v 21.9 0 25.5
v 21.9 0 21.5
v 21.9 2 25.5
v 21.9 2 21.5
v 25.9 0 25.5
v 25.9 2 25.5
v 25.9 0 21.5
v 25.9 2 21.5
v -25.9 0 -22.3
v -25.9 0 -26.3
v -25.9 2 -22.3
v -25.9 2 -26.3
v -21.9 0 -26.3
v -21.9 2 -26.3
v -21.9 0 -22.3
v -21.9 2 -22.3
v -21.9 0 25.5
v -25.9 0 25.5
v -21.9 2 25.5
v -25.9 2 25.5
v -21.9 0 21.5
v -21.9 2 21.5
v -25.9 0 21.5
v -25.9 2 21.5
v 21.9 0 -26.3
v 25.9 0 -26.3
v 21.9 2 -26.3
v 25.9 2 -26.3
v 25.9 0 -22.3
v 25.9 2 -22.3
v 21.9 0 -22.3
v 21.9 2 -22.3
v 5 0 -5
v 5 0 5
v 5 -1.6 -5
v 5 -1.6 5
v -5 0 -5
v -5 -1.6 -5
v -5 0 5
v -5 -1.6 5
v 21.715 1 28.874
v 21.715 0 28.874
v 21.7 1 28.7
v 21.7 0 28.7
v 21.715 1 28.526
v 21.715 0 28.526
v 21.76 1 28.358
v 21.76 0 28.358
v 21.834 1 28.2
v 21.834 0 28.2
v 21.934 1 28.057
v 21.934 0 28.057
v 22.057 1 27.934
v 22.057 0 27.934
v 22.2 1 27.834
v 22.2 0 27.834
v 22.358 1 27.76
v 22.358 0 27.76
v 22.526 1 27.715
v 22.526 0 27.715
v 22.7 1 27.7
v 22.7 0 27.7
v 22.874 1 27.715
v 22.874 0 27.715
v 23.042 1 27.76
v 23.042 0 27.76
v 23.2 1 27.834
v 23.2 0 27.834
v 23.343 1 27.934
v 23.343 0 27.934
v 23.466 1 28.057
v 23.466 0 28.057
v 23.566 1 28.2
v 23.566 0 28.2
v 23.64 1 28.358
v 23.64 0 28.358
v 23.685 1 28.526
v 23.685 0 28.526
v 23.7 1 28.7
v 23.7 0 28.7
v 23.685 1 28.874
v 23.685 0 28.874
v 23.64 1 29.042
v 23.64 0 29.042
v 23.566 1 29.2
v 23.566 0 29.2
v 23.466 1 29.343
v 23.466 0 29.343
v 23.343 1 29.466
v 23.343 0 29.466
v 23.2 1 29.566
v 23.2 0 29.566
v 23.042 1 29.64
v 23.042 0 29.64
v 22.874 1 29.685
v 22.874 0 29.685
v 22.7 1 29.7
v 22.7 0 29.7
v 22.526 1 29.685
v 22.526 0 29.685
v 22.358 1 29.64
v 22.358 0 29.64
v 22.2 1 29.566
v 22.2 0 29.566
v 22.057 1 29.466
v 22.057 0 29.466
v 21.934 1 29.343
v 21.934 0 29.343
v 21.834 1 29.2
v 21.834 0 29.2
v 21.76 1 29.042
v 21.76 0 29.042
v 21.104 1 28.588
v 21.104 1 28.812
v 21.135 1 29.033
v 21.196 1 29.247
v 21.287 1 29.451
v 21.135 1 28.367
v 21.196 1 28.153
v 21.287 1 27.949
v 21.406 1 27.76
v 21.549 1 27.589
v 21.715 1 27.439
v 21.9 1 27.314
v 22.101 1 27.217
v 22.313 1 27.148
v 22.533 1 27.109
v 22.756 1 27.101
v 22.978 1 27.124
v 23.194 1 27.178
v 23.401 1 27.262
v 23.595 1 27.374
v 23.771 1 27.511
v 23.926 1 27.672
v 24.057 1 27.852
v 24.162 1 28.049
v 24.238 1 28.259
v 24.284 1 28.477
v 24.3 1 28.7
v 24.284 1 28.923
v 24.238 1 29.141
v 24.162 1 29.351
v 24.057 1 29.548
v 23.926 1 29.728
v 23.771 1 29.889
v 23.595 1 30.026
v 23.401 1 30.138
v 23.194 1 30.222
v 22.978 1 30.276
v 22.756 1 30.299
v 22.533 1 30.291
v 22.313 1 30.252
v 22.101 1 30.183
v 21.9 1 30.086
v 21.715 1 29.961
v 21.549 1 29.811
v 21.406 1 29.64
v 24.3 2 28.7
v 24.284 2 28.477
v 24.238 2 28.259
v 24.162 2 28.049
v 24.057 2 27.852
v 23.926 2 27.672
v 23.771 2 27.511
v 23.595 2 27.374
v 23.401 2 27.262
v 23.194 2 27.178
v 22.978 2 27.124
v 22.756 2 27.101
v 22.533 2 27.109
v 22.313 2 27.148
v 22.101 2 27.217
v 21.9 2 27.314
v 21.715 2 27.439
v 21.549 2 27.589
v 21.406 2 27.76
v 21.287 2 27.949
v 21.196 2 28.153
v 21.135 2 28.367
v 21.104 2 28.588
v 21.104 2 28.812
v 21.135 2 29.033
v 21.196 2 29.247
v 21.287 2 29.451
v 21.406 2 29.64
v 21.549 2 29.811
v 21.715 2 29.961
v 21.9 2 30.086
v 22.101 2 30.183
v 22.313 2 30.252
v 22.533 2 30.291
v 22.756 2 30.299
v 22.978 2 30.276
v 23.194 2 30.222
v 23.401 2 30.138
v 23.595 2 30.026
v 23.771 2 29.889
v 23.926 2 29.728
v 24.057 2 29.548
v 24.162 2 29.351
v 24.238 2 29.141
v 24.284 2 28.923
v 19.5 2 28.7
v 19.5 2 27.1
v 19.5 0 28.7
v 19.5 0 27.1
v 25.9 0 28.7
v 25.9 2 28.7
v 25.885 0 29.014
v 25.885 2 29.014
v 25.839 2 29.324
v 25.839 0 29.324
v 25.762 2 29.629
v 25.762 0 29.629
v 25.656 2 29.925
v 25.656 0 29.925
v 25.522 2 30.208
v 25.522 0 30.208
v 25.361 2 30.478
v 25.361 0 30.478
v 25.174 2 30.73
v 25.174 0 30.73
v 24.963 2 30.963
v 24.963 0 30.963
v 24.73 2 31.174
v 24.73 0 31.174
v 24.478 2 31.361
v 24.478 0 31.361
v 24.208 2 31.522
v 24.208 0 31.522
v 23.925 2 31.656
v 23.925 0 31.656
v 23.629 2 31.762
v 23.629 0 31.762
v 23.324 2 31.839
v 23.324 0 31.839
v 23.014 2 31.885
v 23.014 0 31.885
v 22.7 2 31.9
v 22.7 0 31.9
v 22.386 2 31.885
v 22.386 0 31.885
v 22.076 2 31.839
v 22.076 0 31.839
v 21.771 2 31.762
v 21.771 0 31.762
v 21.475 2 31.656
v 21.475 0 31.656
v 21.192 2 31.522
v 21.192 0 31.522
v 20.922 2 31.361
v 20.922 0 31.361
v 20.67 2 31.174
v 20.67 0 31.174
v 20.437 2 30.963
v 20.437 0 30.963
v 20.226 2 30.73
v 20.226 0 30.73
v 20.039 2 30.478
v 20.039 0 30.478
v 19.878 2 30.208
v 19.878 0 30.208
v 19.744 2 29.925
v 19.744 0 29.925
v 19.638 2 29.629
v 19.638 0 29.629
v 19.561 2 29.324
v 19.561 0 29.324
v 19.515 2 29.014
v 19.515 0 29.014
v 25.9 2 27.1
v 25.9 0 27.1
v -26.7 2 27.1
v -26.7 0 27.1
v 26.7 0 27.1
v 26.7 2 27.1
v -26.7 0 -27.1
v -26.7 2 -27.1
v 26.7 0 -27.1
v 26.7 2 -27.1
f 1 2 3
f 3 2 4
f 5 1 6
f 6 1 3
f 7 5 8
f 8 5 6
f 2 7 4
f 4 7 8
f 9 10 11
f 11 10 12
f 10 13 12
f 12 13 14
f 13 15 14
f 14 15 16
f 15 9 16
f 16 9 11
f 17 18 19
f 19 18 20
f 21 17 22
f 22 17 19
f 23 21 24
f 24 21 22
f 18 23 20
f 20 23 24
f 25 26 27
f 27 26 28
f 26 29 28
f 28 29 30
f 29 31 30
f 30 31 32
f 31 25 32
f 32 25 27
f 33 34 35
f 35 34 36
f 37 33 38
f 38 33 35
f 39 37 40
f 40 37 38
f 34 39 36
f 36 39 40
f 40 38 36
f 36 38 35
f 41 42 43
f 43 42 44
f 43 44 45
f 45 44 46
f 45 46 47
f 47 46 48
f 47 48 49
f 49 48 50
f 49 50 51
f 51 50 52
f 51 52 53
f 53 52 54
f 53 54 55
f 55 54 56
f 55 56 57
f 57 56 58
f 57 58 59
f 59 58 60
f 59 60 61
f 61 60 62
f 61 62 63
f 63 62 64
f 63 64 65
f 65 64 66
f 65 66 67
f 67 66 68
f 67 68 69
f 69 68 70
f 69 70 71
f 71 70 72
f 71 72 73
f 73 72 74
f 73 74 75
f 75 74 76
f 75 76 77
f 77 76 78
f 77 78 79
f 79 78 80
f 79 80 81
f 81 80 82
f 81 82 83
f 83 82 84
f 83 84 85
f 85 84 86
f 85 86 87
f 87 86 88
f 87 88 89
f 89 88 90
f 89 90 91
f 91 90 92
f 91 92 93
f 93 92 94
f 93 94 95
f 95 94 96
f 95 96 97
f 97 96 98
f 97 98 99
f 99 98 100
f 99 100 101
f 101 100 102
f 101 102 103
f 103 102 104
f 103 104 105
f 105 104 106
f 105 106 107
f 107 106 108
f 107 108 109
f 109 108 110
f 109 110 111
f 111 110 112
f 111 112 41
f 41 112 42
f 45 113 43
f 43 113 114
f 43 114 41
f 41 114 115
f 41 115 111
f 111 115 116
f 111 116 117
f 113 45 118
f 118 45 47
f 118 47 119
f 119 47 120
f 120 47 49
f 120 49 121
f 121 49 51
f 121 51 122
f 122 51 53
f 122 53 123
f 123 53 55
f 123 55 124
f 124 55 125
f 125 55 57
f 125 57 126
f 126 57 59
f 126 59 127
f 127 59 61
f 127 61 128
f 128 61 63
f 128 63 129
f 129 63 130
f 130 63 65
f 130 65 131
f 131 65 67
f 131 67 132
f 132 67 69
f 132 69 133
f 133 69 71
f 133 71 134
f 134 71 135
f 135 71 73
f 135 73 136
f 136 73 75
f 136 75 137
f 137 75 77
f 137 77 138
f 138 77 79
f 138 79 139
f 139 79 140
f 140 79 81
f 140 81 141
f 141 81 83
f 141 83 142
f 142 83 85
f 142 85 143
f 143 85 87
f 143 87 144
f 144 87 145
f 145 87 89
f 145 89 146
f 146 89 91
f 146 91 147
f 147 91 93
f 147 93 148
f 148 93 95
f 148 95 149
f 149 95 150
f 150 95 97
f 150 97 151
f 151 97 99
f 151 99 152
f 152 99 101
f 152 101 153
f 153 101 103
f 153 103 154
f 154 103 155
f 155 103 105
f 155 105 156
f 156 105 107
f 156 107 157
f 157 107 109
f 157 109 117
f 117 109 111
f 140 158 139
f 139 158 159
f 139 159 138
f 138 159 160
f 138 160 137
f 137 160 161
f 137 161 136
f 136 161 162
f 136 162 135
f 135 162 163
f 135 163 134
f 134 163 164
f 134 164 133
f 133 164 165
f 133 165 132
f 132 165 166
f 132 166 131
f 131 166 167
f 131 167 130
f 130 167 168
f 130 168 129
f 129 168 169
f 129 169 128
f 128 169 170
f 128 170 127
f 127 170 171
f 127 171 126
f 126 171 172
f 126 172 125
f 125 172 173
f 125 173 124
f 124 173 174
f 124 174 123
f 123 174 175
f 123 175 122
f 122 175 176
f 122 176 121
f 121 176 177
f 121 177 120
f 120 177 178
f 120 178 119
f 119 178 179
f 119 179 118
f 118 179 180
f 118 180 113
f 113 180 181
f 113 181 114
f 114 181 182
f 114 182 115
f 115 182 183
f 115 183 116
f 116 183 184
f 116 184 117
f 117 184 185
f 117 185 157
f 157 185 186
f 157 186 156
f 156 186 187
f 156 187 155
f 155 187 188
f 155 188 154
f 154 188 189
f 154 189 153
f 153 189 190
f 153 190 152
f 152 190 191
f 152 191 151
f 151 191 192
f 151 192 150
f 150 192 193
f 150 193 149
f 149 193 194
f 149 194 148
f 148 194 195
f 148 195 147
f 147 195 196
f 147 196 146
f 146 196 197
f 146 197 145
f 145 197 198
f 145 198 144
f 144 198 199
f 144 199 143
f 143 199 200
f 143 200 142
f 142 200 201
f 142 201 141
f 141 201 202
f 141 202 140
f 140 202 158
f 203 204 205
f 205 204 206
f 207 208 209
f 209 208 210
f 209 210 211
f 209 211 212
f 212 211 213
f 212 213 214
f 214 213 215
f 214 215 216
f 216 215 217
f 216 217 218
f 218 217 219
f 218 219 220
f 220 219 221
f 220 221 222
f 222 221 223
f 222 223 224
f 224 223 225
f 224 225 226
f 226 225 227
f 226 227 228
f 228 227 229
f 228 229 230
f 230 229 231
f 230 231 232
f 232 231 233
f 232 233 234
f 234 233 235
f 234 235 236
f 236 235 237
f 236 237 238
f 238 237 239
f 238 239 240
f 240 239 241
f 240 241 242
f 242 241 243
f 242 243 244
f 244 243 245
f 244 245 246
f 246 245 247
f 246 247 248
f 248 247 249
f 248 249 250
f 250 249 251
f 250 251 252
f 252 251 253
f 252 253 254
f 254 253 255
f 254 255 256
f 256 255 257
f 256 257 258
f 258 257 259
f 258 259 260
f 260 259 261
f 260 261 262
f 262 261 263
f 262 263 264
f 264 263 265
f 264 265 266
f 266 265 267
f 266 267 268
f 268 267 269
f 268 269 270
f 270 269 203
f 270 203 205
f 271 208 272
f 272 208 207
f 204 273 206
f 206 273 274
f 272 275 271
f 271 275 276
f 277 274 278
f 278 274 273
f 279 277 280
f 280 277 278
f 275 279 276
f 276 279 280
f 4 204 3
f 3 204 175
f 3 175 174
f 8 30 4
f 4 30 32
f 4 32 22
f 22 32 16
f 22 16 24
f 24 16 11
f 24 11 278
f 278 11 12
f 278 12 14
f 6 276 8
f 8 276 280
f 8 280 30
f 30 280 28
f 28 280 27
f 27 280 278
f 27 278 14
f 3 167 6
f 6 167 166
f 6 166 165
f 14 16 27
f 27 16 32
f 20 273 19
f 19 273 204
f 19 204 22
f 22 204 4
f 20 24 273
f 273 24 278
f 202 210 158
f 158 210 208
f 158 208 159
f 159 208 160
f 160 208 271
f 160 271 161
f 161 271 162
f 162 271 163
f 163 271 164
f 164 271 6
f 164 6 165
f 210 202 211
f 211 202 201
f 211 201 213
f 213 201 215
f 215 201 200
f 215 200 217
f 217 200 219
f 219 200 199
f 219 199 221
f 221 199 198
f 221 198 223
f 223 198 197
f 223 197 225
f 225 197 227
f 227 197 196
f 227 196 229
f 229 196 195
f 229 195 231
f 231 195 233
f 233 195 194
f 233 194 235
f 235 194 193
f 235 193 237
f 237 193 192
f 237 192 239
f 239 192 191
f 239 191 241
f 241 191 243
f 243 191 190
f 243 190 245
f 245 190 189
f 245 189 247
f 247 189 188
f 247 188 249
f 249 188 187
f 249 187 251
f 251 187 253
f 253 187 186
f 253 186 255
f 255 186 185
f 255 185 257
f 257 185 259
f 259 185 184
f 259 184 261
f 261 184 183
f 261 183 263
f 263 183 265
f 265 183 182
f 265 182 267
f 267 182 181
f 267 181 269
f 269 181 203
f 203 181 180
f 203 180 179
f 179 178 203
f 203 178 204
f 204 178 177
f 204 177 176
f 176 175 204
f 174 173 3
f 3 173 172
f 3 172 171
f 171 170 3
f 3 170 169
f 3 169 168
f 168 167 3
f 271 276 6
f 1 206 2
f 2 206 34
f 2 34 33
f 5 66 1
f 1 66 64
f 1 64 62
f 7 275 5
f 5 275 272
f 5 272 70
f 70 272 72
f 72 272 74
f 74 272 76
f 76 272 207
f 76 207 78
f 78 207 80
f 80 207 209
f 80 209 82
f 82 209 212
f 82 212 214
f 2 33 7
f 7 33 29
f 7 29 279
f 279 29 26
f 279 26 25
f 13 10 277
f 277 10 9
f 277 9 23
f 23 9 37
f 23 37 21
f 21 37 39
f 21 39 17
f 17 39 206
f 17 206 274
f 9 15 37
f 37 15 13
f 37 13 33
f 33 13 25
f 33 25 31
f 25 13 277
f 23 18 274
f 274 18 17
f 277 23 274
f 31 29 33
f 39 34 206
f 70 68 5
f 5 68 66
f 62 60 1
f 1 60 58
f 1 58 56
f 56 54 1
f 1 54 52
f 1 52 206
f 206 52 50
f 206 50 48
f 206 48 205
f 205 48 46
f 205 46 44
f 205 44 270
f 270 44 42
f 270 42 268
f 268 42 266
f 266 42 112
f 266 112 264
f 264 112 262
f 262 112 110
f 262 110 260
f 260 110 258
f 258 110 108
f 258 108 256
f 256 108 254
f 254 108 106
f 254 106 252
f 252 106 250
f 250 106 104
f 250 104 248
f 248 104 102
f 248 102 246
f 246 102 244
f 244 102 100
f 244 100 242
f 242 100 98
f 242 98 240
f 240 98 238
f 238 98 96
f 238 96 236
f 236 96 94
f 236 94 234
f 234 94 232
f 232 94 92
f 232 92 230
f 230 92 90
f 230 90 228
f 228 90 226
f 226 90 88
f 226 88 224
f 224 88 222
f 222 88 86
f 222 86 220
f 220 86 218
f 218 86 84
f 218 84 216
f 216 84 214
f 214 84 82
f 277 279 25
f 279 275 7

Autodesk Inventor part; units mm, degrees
ref_plane "YZ Plane" through (0, 0, 0) normal (1, 0, 0) x (0, 1, 0)
ref_plane "XZ Plane" through (0, 0, 0) normal (0, 1, 0) x (-1, 0, 0)
ref_plane "XY Plane" through (0, 0, 0) normal (0, 0, 1) x (1, 0, 0)
sketch "Szkic1" plane through (0, 0, 0) normal (0, 1, 0) x (-1, 0, 0)
  line L0 (26.7, -27.1) -> (-26.7, -27.1)
  line L1 (-26.7, -27.1) -> (-26.7, 27.1)
  line L2 (-26.7, 27.1) -> (26.7, 27.1)
  line L3 (26.7, 27.1) -> (26.7, -27.1)
  line L4 (26.7, -27.1) -> (-26.7, 27.1) construction
  line L5 (-26.7, -27.1) -> (26.7, 27.1) construction
  point P0 (0, 0)
  dimension "d0" = 53.4
  dimension "d1" = 54.2
extrude "Wyciągnięcie proste1" add sketch "Szkic1" along normal blind 2
sketch "Szkic11" plane through (0, 2, 0) normal (0, 1, 0) x (1, 0, 0)
  line L0 (-26.7, -27.1) -> (26.7, -27.1) projected
  line L1 (26.7, -27.1) -> (25.9, -27.1)
  line L2 (25.9, -27.1) -> (19.5, -27.1)
  line L3 (19.5, -27.1) -> (19.5, -28.7)
  line L4 (19.5, -28.7) -> (25.9, -28.7)
  line L5 (25.9, -28.7) -> (25.9, -27.1)
  arc A0 (19.5, -28.7) -> (25.9, -28.7) centre (22.7, -28.7) ccw
  point P0 (0, 0)
  dimension "d37" = 0.8
  dimension "d38" = 6.4
  dimension "d39" = 1.6
  dimension "d40" = 3.2
extrude "Wyciągnięcie proste10" add sketch "Szkic11" against normal blind 2
sketch "Szkic12" plane through (0, 2, 0) normal (0, 1, 0) x (1, 0, 0)
  arc A0 (19.5, -28.7) -> (25.9, -28.7) centre (22.7, -28.7) ccw projected
  circle A1 centre (22.7, -28.7) radius 1.6
  point P0 (0, 0)
  dimension "d43" = 3.2
extrude "Wyciągnięcie proste11" cut sketch "Szkic12" against normal through all
sketch "Szkic49" plane through (0, 0, 0) normal (0, -1, 0) x (1, 0, 0)
  circle A0 centre (22.7, 28.7) radius 1.6 projected
  circle A1 centre (22.7, 28.7) radius 1.6
  point P0 (0, 0)
extrude "Wyciągnięcie proste41" add sketch "Szkic49" against normal blind 1
sketch "Szkic50" plane through (0, 0, 0) normal (0, -1, 0) x (1, 0, 0)
  circle A0 centre (22.7, 28.7) radius 1.6 projected
  circle A1 centre (22.7, 28.7) radius 1
  point P0 (0, 0)
  dimension "d208" = 2
extrude "Wyciągnięcie proste42" cut sketch "Szkic50" against normal blind 10 contours A1
sketch "Szkic51" plane through (0, 0, 0) normal (0, -1, 0) x (1, 0, 0)
  line L0 (5, -5) -> (-5, -5)
  line L1 (-5, -5) -> (-5, 5)
  line L2 (-5, 5) -> (5, 5)
  line L3 (5, 5) -> (5, -5)
  line L4 (5, -5) -> (-5, 5) construction
  line L5 (-5, -5) -> (5, 5) construction
  point P0 (0, 0)
  dimension "d211" = 10
  dimension "d212" = 10
extrude "Wyciągnięcie proste43" add sketch "Szkic51" along normal blind 1.6
sketch "Szkic52" plane through (0, 2, 0) normal (0, 1, 0) x (1, 0, 0)
  line L0 (-25.9, 26.3) -> (-21.9, 26.3)
  line L1 (-21.9, 26.3) -> (-21.9, 22.3)
  line L2 (-21.9, 22.3) -> (-25.9, 22.3)
  line L3 (-25.9, 22.3) -> (-25.9, 26.3)
  line L4 (21.9, 26.3) -> (25.9, 26.3)
  line L5 (25.9, 26.3) -> (25.9, 22.3)
  line L6 (25.9, 22.3) -> (21.9, 22.3)
  line L7 (21.9, 22.3) -> (21.9, 26.3)
  line L8 (-25.9, -21.5) -> (-21.9, -21.5)
  line L9 (-21.9, -21.5) -> (-21.9, -25.5)
  line L10 (-21.9, -25.5) -> (-25.9, -25.5)
  line L11 (-25.9, -25.5) -> (-25.9, -21.5)
  line L12 (21.9, -21.5) -> (25.9, -21.5)
  line L13 (25.9, -21.5) -> (25.9, -25.5)
  line L14 (25.9, -25.5) -> (21.9, -25.5)
  line L15 (21.9, -25.5) -> (21.9, -21.5)
  line L16 (-25.9, 26.3) -> (-26.7, 26.3)
  line L17 (-25.9, -21.5) -> (-26.7, -21.5)
  line L18 (25.9, 26.3) -> (26.7, 26.3)
  line L19 (25.9, -21.5) -> (26.7, -21.5)
  line L20 (26.7, -27.1) -> (26.7, 27.1) projected
  line L21 (-26.7, 27.1) -> (-26.7, -27.1) projected
  line L22 (-25.9, 26.3) -> (-25.9, 27.1)
  line L23 (25.9, 26.3) -> (25.9, 27.1)
  line L24 (26.7, -27.1) -> (26.7, 27.1) projected
  line L25 (25.9, 26.3) -> (26.7, 26.3) construction
  line L26 (26.7, 27.1) -> (-26.7, 27.1) projected
  line L27 (-25.9, -25.5) -> (-25.9, -27.1)
  line L28 (-26.7, 27.1) -> (-26.7, -27.1) projected
  line L29 (-25.9, -25.5) -> (-24.3, -25.5) construction
  line L30 (25.9, -25.5) -> (25.9, -27.1)
  line L31 (-26.7, -27.1) -> (19.5, -27.1) projected
  point P0 (0, 0)
  dimension "d215" = 4
  dimension "d216" = 4
  dimension "d217" = 4
  dimension "d218" = 4
  dimension "d219" = 4
  dimension "d220" = 4
  dimension "d221" = 4
  dimension "d222" = 4
  dimension "d223" = 0.8
  dimension "d224" = 0.8
  dimension "d225" = 0.8
  dimension "d226" = 0.8
  dimension "d227" = 0.8
  dimension "d228" = 0.8
  dimension "d229" = 90
  dimension "d230" = 1.6
  dimension "d231" = 90
  dimension "d232" = 1.6
extrude "Wyciągnięcie proste44" cut sketch "Szkic52" against normal up to surface (2 mm away) contours L0 L1 L2 L3 | L13 L14 L15 L12 | L5 L6 L7 L4 | L8 L9 L10 L11
properties part number "PMS3003_dol"
